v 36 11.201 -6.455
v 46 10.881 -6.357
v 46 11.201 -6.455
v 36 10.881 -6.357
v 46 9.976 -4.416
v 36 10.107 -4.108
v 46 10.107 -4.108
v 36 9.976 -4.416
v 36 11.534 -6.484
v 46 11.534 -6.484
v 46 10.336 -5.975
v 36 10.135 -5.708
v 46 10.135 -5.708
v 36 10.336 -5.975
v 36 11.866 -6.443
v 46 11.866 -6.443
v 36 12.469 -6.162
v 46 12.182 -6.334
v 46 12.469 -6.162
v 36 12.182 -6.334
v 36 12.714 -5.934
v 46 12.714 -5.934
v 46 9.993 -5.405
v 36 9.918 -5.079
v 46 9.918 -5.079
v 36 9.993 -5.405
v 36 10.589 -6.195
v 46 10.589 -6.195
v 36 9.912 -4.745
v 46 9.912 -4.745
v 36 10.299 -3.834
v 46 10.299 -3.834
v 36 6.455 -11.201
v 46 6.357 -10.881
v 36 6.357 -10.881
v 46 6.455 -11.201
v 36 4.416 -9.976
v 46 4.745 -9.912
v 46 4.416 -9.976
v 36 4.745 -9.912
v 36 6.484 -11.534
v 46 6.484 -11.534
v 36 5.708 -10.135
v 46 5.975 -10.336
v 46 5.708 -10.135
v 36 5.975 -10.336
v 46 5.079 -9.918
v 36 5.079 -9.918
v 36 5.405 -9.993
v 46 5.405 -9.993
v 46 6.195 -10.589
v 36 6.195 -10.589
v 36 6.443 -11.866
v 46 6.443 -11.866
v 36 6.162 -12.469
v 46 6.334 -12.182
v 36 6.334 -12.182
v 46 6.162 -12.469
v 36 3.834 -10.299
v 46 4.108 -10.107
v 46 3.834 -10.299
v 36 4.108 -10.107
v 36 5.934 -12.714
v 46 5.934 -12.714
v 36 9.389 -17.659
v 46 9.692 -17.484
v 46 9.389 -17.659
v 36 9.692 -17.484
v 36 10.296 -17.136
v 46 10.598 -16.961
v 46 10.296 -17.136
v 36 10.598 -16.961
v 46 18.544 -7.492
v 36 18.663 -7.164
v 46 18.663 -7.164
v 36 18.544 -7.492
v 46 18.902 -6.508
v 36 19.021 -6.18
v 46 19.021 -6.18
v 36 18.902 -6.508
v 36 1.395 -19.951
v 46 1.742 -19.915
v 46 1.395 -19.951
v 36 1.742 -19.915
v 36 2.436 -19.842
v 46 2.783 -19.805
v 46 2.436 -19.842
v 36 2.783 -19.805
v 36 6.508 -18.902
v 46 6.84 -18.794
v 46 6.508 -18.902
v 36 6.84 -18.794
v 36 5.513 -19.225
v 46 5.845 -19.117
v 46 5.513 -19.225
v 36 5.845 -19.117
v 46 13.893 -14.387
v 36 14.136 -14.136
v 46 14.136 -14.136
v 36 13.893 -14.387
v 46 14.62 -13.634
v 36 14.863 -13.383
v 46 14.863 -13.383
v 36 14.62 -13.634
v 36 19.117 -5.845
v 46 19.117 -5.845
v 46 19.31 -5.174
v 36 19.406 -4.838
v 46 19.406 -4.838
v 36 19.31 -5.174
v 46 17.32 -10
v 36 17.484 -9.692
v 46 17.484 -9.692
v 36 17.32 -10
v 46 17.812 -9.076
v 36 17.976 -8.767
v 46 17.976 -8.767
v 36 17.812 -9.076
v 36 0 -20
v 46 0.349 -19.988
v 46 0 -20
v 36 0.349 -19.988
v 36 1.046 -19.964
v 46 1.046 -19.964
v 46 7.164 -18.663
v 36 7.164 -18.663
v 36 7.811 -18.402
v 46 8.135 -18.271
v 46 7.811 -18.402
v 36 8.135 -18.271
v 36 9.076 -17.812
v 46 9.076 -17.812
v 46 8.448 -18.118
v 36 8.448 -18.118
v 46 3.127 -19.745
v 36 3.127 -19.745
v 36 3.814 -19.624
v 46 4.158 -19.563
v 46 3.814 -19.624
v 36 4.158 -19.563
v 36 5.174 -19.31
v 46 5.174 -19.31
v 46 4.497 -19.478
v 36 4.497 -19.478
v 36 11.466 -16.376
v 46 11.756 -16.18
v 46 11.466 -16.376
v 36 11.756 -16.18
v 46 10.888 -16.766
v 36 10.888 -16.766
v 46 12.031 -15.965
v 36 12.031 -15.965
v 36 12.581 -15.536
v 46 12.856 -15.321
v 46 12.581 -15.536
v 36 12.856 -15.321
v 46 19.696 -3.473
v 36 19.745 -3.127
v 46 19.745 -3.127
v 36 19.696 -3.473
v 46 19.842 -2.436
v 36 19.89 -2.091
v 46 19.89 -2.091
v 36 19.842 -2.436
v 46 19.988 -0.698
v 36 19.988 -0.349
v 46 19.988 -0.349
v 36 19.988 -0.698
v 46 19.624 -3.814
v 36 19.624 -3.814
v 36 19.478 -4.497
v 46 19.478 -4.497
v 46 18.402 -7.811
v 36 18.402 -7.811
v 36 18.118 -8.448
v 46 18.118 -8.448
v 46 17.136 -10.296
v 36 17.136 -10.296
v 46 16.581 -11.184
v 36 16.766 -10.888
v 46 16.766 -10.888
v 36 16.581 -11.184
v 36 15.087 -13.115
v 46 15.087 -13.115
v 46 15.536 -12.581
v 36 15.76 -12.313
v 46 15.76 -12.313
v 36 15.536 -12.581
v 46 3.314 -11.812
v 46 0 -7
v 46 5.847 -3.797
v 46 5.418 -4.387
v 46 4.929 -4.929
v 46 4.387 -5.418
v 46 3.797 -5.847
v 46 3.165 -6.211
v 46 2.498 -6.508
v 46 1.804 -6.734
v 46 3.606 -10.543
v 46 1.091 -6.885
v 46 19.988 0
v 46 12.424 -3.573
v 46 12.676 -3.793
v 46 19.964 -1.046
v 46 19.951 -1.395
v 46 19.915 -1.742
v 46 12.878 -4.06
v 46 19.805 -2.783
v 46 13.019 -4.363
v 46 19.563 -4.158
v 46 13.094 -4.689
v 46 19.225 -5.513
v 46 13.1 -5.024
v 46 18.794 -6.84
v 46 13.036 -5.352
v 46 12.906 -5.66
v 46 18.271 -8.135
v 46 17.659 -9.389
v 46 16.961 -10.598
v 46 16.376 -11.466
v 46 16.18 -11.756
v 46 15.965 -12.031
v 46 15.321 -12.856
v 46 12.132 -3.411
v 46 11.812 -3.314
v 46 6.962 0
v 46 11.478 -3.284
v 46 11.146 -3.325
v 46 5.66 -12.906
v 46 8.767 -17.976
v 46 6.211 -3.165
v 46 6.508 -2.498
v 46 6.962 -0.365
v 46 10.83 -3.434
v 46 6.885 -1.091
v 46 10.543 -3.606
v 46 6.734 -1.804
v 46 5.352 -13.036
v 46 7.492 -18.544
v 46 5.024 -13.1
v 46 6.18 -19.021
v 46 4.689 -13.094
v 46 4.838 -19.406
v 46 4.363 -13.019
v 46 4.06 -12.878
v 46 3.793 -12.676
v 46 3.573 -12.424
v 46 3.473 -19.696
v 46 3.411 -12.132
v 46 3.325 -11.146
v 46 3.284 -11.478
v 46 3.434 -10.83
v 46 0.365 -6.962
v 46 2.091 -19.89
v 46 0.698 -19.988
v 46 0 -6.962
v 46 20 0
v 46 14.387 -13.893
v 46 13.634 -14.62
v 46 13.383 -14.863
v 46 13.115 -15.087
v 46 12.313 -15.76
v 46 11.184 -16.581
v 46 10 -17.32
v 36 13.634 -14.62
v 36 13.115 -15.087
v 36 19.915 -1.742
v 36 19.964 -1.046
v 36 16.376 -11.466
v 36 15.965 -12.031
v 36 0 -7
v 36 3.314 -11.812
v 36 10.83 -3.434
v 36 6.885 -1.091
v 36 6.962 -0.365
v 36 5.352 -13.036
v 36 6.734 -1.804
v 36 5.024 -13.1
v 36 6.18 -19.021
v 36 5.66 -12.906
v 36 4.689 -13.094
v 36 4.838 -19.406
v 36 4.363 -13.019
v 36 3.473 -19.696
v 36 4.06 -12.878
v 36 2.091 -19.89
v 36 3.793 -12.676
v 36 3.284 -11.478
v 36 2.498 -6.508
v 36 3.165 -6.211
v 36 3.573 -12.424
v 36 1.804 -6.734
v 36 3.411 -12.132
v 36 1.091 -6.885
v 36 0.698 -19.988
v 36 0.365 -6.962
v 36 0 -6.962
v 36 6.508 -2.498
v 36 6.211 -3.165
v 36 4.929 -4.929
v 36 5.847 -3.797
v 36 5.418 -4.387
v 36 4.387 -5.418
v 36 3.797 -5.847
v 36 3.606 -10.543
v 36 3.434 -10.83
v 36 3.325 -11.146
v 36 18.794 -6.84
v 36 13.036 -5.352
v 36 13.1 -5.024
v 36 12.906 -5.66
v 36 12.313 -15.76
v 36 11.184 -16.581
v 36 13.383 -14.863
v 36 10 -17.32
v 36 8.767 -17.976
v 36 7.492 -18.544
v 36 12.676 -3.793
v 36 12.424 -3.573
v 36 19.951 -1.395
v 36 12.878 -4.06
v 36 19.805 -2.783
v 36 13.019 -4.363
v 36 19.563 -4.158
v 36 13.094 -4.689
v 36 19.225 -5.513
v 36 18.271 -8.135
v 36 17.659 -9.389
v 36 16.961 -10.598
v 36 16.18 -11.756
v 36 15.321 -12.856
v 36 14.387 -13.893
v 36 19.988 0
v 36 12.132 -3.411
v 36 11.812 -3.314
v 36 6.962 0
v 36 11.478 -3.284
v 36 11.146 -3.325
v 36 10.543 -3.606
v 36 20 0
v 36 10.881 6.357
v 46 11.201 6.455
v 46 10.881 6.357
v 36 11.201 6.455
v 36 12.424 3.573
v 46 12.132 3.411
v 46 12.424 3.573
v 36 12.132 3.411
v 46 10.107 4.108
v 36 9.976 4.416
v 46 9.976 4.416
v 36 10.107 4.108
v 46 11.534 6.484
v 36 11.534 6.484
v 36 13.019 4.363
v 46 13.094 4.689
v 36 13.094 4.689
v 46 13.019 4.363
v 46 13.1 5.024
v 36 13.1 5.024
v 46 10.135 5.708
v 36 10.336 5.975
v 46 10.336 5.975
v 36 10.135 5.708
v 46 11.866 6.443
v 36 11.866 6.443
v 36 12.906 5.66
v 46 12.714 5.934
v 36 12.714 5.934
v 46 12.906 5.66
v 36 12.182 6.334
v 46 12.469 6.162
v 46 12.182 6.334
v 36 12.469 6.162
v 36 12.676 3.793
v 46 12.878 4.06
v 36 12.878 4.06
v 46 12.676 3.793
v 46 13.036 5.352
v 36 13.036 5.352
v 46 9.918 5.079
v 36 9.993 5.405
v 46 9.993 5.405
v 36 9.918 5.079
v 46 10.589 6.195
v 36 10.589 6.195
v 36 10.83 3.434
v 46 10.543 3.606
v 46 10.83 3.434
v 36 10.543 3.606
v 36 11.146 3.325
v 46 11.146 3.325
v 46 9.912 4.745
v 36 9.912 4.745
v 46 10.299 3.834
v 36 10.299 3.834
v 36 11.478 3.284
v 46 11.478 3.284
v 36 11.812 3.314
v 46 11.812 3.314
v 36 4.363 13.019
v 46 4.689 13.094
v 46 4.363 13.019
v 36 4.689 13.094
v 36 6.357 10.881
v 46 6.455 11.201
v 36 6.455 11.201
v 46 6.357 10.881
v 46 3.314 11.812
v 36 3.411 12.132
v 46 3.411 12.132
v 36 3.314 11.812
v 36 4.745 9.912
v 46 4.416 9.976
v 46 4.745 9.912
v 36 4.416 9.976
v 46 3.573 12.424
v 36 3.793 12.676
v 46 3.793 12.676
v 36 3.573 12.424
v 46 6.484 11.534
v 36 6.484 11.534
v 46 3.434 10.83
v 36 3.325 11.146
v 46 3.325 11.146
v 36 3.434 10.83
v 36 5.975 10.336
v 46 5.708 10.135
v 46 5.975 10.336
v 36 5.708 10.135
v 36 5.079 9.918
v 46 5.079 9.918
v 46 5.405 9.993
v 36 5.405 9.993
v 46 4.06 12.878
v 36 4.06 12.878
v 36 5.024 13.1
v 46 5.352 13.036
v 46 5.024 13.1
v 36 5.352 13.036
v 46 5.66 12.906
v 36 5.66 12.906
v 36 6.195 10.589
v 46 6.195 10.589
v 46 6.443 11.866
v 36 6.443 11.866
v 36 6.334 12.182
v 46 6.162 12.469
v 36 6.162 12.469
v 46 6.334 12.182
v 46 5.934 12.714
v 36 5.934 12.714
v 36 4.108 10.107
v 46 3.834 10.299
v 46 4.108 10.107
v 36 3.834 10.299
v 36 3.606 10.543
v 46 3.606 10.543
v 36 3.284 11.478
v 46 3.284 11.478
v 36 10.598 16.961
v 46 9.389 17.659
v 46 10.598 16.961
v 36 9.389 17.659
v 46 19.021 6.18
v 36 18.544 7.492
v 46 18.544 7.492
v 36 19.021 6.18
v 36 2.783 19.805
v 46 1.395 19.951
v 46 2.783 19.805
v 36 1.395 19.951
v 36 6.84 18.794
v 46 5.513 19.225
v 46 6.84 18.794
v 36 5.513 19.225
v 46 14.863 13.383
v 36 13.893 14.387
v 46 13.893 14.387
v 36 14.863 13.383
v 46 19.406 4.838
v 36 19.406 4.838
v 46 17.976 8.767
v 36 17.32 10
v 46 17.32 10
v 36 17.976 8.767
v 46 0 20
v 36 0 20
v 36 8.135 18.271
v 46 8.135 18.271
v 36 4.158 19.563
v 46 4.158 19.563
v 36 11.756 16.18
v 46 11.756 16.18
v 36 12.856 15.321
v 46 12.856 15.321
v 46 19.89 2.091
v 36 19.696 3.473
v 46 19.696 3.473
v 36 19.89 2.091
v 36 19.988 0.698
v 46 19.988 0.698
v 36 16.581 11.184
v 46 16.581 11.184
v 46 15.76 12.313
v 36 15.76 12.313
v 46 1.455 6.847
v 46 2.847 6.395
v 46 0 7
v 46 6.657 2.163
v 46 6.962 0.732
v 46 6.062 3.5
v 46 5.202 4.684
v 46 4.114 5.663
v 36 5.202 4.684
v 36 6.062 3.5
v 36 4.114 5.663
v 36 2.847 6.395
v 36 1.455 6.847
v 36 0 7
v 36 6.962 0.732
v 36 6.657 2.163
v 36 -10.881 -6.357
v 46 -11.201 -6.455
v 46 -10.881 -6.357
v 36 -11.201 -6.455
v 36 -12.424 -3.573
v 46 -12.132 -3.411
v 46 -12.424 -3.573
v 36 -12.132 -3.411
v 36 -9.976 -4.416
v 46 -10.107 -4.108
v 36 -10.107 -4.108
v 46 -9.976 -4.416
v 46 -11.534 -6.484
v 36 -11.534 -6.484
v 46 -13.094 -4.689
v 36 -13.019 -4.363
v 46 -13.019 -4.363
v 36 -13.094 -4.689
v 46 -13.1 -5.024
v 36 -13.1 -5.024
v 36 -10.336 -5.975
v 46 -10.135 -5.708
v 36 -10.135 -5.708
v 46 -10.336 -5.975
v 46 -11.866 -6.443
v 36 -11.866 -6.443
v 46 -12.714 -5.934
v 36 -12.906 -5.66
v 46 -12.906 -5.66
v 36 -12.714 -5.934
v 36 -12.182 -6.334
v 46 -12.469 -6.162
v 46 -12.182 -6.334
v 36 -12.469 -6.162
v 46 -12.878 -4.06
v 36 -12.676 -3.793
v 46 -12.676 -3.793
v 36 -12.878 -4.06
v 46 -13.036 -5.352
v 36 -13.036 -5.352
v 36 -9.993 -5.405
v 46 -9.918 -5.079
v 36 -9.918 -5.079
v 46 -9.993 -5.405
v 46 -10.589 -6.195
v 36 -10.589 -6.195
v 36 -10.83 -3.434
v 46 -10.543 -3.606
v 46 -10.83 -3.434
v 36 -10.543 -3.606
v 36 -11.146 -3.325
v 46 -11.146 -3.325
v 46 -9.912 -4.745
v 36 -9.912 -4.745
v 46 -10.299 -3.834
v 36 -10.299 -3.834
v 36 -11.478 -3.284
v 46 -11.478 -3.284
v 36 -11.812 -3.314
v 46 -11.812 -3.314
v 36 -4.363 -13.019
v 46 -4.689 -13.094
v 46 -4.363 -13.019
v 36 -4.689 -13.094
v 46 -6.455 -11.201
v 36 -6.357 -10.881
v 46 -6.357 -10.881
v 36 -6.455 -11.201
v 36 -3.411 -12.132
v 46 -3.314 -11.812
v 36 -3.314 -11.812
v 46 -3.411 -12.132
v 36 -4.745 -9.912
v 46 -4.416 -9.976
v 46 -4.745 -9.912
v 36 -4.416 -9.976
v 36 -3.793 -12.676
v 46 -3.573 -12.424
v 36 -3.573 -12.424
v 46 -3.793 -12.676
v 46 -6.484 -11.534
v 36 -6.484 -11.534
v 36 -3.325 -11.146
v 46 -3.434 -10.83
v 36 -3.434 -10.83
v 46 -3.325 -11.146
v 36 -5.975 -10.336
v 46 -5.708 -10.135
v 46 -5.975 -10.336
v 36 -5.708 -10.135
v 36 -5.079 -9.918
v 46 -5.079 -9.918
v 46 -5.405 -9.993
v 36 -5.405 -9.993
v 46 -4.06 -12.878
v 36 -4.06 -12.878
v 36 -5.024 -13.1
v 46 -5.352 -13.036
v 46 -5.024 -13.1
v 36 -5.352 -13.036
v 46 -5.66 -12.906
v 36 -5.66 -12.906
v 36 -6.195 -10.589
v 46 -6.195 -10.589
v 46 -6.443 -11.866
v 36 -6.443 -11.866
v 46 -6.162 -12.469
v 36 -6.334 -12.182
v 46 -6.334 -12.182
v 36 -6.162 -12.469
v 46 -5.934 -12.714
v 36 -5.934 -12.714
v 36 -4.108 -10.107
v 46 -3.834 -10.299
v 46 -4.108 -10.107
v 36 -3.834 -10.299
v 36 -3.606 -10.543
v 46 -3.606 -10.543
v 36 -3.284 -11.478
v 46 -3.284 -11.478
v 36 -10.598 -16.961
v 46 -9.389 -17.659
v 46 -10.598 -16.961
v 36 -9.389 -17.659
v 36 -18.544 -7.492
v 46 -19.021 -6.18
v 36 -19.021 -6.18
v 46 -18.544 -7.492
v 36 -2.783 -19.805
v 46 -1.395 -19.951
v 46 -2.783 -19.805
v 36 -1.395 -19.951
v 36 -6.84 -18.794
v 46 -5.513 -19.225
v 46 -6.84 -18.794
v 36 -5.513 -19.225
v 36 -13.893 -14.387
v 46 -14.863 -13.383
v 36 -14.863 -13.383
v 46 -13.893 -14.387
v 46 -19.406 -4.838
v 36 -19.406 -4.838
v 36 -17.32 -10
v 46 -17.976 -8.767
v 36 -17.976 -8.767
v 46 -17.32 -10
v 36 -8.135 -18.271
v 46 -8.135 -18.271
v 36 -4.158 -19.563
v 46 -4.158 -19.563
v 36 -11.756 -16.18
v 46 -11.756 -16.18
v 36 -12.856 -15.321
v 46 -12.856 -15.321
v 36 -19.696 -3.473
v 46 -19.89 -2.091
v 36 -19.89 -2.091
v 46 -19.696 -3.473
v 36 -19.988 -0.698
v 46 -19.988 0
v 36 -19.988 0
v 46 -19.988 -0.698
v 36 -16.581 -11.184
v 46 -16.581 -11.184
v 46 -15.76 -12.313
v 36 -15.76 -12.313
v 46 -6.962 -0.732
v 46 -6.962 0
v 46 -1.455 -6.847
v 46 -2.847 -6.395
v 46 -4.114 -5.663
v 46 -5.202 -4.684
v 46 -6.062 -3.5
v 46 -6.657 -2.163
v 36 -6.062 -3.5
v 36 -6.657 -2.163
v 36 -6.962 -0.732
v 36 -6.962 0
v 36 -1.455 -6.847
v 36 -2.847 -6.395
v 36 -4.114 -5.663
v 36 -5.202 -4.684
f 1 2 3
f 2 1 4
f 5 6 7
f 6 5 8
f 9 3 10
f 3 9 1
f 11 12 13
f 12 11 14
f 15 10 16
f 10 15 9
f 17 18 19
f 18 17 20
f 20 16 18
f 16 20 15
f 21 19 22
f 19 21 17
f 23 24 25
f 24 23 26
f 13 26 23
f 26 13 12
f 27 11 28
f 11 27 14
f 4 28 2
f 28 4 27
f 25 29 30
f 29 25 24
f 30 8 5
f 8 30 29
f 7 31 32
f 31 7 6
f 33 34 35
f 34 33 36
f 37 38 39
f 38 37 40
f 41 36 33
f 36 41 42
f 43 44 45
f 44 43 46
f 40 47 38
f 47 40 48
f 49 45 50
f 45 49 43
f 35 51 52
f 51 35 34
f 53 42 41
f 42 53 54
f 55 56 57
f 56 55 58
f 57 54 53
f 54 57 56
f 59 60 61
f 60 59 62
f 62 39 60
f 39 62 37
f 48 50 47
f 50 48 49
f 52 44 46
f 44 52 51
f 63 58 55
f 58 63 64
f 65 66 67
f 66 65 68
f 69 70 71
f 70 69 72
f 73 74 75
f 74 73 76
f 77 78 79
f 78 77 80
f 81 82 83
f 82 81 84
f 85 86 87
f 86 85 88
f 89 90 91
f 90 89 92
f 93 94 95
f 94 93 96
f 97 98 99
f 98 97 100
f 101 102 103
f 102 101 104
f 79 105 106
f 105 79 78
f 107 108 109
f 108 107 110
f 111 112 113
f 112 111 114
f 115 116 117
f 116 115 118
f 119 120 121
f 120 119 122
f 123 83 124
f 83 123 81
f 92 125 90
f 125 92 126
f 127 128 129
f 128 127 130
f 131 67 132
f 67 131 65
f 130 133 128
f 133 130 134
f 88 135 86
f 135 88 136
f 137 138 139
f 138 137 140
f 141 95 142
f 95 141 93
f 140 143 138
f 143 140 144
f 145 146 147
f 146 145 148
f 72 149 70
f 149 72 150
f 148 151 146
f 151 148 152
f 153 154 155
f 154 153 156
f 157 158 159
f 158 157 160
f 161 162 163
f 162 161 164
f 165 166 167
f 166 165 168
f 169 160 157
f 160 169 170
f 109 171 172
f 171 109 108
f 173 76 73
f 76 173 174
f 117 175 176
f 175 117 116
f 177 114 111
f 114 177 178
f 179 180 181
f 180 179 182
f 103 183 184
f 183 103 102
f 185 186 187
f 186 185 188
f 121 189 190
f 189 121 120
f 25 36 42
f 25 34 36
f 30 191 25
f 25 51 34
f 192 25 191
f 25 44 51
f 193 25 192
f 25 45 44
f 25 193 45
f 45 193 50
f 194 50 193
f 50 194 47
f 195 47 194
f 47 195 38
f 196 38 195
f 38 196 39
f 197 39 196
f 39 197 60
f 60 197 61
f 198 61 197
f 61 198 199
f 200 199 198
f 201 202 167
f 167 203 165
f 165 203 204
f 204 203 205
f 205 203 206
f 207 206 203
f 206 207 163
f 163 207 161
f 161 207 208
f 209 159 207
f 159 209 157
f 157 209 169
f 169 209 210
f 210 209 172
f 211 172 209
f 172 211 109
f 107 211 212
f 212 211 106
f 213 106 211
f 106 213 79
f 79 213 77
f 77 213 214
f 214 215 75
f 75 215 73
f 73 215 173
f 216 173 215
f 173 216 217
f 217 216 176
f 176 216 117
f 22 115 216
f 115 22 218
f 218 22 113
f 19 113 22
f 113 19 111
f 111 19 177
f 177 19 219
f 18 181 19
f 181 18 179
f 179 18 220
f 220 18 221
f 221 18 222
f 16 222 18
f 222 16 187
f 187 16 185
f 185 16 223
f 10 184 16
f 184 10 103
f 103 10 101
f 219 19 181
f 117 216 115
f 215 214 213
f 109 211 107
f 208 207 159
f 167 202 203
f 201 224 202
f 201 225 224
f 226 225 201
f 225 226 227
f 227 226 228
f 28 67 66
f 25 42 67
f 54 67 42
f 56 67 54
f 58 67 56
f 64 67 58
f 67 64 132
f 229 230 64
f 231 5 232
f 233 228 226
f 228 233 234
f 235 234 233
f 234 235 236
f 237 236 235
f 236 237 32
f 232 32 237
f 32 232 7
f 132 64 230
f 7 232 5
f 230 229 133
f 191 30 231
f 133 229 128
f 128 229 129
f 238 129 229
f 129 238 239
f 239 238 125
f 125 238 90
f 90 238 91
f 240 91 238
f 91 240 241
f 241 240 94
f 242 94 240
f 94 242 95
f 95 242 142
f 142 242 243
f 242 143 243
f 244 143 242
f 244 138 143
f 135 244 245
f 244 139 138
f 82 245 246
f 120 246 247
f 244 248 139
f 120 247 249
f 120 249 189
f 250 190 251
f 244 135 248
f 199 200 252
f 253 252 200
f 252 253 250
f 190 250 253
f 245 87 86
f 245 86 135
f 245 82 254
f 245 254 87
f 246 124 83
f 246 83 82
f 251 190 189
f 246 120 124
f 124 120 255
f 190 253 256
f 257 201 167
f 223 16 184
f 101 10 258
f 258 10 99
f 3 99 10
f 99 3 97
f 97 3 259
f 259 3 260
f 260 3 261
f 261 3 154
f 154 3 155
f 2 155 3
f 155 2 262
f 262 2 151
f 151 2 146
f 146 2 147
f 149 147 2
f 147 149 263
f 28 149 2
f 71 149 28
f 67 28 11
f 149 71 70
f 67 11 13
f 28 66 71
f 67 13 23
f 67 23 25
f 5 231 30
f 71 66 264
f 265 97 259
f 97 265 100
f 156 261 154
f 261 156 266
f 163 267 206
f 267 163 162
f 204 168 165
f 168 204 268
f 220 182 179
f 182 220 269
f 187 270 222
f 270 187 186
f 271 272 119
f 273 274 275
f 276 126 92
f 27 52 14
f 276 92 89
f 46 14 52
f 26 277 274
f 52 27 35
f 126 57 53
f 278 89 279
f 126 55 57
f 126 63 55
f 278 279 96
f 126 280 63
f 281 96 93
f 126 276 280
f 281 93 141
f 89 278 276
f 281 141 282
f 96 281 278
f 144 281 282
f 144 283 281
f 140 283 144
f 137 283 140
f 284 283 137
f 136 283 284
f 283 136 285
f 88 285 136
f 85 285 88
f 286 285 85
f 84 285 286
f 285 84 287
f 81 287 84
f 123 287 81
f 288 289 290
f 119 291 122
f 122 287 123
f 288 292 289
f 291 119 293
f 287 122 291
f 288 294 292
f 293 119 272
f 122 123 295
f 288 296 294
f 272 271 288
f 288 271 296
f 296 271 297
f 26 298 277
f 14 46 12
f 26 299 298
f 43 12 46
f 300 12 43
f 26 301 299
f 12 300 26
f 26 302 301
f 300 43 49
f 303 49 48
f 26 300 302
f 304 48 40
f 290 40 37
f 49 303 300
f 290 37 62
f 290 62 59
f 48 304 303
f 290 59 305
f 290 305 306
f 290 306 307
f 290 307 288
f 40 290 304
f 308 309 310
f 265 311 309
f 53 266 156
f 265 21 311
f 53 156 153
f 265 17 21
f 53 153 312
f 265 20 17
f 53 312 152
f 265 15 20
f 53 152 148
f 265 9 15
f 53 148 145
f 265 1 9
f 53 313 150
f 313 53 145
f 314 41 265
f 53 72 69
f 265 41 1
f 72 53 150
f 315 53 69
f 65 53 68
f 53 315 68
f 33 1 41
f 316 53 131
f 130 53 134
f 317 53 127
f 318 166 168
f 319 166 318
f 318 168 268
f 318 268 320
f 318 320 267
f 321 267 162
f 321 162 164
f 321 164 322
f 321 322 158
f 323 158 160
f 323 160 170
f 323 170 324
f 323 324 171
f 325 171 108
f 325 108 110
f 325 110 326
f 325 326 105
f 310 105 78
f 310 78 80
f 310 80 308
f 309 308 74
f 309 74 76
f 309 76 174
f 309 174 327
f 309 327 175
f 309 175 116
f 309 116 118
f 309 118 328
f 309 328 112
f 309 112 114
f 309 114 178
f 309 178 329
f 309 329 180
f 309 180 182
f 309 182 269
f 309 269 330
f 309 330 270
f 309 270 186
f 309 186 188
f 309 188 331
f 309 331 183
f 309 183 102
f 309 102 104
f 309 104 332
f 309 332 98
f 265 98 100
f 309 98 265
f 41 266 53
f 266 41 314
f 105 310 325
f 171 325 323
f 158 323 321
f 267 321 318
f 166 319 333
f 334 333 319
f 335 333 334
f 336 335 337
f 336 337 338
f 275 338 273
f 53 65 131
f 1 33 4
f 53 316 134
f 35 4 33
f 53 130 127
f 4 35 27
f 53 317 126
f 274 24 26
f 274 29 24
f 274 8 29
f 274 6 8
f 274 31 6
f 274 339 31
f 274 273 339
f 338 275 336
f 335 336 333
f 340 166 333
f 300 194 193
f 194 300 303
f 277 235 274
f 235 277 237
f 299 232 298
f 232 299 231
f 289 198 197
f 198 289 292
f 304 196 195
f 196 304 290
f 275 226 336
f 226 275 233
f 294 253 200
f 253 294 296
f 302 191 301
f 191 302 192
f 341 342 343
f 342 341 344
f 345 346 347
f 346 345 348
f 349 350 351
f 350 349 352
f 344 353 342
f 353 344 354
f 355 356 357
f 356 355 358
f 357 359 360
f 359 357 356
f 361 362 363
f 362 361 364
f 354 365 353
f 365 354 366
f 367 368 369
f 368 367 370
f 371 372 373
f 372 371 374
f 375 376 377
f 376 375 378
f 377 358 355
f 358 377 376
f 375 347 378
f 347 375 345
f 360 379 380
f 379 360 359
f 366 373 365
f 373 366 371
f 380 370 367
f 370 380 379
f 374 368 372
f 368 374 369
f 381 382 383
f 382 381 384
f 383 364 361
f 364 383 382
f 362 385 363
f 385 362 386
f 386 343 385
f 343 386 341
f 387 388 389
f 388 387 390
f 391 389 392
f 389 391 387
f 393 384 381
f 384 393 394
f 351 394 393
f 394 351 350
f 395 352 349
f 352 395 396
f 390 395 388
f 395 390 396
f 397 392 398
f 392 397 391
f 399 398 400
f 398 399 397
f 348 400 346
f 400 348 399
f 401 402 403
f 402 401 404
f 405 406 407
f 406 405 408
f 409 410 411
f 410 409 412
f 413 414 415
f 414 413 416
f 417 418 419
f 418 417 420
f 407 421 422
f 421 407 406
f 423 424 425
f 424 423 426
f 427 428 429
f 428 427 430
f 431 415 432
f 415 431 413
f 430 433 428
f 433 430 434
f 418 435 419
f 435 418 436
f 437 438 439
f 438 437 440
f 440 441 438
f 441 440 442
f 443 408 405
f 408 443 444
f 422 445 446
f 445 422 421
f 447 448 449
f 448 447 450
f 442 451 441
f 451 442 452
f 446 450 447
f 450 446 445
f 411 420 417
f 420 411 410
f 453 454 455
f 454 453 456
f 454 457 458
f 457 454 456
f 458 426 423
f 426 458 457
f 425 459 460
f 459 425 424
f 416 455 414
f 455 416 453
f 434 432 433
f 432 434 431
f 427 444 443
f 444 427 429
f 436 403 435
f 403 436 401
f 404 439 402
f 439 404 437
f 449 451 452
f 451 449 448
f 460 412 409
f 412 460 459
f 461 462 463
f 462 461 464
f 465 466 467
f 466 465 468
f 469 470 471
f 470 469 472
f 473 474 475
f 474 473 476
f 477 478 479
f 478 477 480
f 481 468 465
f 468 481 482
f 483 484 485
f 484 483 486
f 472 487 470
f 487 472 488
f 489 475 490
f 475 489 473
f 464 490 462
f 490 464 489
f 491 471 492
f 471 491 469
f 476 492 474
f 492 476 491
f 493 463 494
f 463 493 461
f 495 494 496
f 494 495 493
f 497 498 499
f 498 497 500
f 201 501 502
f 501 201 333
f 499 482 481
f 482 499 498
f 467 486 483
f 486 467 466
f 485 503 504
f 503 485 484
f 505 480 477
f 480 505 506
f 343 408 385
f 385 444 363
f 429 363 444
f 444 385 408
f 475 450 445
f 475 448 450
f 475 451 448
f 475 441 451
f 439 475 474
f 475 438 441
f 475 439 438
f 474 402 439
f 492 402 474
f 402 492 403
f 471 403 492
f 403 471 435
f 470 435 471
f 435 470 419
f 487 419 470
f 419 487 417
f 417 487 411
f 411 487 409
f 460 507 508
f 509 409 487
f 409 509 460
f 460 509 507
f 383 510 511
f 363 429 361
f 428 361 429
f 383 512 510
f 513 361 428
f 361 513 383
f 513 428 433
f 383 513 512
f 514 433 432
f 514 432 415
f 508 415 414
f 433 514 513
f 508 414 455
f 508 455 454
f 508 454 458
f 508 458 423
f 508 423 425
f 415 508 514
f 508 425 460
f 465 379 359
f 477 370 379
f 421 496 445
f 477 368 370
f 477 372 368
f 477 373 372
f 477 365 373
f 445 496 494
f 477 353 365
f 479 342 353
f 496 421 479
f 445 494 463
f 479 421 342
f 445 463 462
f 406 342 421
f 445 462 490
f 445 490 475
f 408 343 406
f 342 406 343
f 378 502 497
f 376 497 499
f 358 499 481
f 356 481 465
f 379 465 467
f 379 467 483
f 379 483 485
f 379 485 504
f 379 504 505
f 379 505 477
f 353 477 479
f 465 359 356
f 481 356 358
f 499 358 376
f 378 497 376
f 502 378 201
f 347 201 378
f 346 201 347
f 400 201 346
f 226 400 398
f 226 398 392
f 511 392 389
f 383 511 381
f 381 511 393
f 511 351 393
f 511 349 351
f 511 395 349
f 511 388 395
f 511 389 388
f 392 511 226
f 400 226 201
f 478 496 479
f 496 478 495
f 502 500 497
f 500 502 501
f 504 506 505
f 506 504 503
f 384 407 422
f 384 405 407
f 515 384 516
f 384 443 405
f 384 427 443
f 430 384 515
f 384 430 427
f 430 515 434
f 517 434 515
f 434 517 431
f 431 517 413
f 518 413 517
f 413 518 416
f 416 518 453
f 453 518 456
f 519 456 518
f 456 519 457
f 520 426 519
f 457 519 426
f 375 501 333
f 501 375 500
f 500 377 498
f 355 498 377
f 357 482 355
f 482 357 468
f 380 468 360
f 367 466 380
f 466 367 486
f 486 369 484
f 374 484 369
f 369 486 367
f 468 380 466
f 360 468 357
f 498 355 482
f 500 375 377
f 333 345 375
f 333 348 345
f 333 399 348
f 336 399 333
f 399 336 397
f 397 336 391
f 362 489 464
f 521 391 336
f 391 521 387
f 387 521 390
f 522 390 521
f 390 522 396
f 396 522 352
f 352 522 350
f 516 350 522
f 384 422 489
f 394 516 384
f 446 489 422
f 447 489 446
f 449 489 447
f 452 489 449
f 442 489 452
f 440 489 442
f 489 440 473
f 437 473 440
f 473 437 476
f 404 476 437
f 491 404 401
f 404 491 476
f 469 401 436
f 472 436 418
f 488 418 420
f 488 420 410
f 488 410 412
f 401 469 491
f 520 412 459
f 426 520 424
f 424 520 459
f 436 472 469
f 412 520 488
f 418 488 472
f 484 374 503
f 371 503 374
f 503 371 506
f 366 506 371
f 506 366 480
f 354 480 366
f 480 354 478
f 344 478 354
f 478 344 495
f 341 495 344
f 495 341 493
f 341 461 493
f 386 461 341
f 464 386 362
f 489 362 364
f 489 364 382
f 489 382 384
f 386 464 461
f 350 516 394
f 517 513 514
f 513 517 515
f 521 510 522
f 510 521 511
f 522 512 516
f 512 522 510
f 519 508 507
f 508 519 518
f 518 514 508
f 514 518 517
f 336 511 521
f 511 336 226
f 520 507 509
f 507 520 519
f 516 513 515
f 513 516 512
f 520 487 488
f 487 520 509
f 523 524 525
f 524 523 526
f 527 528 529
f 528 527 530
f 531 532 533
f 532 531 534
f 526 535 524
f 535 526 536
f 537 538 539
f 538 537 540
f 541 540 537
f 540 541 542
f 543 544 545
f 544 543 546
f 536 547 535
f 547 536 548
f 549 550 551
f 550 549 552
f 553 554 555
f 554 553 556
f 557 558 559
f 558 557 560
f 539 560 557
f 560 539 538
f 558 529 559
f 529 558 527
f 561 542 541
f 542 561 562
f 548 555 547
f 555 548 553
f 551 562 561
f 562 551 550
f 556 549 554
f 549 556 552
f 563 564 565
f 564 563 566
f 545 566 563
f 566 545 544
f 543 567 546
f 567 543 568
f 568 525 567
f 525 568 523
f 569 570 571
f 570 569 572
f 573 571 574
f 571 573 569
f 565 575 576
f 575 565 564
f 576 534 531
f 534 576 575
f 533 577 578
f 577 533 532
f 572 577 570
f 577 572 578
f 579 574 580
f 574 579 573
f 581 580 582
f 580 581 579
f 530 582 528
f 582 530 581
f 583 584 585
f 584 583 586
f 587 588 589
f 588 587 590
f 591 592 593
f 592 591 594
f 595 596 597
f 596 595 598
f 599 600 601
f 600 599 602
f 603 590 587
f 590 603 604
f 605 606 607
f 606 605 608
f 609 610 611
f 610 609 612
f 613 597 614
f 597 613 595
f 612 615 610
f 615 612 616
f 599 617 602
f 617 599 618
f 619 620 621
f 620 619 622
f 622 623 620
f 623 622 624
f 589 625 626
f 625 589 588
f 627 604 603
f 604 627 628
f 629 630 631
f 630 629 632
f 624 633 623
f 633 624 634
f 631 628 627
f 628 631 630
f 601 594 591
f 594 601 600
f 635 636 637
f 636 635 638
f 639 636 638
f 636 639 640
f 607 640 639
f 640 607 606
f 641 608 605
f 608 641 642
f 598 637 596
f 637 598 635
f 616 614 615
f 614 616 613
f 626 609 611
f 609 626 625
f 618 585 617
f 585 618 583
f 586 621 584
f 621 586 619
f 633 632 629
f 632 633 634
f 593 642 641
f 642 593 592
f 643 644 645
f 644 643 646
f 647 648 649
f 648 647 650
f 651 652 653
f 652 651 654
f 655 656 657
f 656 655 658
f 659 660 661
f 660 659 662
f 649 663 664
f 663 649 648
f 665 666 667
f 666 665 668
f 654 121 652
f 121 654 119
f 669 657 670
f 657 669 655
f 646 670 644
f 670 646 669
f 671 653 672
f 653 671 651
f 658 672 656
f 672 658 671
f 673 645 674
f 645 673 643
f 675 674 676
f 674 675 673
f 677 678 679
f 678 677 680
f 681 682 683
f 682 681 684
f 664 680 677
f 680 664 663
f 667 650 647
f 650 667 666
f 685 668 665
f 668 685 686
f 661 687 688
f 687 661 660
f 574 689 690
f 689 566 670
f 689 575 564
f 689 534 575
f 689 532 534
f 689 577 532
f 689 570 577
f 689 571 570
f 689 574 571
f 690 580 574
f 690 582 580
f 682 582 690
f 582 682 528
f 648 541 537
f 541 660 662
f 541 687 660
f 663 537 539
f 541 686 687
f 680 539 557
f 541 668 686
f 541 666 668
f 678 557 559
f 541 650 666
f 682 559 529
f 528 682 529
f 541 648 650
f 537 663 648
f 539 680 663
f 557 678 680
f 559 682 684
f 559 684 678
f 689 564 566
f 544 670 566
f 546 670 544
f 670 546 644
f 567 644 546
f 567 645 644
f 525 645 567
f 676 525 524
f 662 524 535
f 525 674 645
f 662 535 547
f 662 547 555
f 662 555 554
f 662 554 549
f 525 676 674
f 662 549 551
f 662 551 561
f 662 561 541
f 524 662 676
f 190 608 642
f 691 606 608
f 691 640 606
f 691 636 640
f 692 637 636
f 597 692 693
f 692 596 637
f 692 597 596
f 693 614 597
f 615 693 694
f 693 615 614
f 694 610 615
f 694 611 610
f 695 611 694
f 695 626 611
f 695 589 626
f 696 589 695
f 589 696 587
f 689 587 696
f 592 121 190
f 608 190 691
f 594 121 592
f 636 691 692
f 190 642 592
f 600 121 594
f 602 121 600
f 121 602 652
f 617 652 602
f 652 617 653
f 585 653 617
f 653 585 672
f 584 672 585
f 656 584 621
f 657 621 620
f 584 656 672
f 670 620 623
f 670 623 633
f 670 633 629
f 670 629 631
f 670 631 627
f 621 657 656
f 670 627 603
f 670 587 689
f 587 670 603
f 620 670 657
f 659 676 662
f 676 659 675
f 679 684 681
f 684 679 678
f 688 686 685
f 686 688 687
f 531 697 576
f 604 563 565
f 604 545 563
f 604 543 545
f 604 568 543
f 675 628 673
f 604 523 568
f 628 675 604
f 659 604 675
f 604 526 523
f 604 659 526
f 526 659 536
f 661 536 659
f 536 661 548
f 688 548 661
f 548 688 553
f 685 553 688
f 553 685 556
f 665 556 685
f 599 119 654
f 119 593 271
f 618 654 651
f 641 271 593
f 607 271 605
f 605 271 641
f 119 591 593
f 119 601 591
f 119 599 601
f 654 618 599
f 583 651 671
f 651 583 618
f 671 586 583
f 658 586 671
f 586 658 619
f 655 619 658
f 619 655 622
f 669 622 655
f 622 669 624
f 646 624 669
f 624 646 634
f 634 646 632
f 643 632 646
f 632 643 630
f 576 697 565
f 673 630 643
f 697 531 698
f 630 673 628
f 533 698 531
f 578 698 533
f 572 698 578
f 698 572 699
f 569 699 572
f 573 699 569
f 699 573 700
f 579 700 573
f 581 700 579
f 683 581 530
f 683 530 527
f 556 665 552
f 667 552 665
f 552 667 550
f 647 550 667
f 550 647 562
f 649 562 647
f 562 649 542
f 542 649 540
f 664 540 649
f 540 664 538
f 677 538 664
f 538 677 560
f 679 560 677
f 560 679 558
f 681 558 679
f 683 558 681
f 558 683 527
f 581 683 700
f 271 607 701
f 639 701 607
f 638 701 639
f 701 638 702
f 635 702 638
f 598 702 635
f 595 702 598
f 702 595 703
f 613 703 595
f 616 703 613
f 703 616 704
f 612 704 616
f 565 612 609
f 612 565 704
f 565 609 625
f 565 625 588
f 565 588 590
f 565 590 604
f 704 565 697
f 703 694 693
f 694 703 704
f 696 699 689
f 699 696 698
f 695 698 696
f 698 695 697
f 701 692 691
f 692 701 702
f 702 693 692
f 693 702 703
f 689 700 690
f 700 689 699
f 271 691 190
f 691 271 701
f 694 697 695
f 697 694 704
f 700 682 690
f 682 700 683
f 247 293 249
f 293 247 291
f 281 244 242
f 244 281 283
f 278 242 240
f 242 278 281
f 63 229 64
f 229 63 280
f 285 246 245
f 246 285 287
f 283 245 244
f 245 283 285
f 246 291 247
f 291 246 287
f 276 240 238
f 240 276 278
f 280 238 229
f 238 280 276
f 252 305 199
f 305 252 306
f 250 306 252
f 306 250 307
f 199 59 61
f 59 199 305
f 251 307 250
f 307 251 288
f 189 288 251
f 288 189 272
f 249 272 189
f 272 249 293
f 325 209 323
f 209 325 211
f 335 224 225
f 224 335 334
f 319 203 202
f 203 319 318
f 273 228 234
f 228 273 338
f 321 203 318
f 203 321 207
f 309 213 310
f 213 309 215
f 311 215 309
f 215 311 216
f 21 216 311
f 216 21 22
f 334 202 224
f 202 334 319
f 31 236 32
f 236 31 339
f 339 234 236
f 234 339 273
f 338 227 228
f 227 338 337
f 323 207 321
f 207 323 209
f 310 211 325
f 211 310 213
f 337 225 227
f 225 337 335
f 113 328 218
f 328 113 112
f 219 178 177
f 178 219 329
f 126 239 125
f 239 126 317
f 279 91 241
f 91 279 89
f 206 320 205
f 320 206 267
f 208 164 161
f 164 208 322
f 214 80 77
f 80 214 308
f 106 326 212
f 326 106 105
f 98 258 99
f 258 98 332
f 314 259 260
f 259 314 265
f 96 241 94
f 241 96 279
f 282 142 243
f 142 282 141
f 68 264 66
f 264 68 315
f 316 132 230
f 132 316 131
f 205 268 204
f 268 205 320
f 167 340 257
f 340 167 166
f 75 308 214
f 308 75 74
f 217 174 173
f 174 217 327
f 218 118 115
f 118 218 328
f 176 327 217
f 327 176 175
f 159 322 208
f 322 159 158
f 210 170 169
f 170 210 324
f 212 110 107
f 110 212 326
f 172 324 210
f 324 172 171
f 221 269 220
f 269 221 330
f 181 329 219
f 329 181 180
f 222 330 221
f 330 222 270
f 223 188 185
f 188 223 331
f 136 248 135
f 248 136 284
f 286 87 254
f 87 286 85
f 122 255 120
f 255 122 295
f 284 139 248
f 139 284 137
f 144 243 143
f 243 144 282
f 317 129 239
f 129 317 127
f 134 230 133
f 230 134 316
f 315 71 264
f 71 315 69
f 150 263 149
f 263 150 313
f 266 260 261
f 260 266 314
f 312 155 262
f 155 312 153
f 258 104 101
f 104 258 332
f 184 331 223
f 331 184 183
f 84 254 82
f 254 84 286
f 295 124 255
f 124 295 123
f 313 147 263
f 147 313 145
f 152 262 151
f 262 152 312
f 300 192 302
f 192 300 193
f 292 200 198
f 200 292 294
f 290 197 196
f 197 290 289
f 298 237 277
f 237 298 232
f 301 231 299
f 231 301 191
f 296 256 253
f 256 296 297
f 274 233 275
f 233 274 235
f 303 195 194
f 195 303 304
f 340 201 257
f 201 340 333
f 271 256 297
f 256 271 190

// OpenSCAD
A = 90; //large circle resolution
B = 30; //Small circle resolution






/*

////////////////////////////////////
//back circle wall 
////////////////////////////////////

difference(){
union(){    
translate([0,0,0]) rotate([0,90,0]) cylinder(h = 10, d=40, $fn = 90, center = true); 


}
translate([0,0,0]) rotate([0,90,0]) cylinder(h = 10, d=10, $fn = 45, center = true);
    

    
for(i=[0:3]) rotate([-i*90,0,0]) translate([0,12.5,0]) rotate([0,90,0]) cylinder(h = 11, d=3.2, $fn = 30, center = true);

}


*/




for(i=[0:1]) for(j=[0:1]) mirror([0,i,j]){

////////////////////////////////////
//back circle wall 
////////////////////////////////////

difference(){
union(){    
translate([38.5+2.5,0,0]) rotate([0,90,0]) cylinder(h = 10, d=40, $fn = A, center = true); 


}
translate([38.5+2.5,0,0]) rotate([0,90,0]) cylinder(h = 10, d=10+4, $fn = B, center = true);
    
//for(i=[0:1]) rotate([-45+22-i*44,0,0]) translate([38.5,12.5,0]) rotate([0,90,0]) cylinder(h = 5, d=6, $fn = B, center = true);   
    
for(i=[0:1]) rotate([-45+22-i*44,0,0]) translate([43.5,12.5,0]) rotate([0,90,0]) cylinder(h = 20, d=3.2, $fn = B, center = true);
    

translate([0,-25,0]) rotate([0,0,0]) cube([120,50,80], center = true); 

translate([0,0,40]) rotate([0,0,0]) cube([120,50,80], center = true); 

}}
